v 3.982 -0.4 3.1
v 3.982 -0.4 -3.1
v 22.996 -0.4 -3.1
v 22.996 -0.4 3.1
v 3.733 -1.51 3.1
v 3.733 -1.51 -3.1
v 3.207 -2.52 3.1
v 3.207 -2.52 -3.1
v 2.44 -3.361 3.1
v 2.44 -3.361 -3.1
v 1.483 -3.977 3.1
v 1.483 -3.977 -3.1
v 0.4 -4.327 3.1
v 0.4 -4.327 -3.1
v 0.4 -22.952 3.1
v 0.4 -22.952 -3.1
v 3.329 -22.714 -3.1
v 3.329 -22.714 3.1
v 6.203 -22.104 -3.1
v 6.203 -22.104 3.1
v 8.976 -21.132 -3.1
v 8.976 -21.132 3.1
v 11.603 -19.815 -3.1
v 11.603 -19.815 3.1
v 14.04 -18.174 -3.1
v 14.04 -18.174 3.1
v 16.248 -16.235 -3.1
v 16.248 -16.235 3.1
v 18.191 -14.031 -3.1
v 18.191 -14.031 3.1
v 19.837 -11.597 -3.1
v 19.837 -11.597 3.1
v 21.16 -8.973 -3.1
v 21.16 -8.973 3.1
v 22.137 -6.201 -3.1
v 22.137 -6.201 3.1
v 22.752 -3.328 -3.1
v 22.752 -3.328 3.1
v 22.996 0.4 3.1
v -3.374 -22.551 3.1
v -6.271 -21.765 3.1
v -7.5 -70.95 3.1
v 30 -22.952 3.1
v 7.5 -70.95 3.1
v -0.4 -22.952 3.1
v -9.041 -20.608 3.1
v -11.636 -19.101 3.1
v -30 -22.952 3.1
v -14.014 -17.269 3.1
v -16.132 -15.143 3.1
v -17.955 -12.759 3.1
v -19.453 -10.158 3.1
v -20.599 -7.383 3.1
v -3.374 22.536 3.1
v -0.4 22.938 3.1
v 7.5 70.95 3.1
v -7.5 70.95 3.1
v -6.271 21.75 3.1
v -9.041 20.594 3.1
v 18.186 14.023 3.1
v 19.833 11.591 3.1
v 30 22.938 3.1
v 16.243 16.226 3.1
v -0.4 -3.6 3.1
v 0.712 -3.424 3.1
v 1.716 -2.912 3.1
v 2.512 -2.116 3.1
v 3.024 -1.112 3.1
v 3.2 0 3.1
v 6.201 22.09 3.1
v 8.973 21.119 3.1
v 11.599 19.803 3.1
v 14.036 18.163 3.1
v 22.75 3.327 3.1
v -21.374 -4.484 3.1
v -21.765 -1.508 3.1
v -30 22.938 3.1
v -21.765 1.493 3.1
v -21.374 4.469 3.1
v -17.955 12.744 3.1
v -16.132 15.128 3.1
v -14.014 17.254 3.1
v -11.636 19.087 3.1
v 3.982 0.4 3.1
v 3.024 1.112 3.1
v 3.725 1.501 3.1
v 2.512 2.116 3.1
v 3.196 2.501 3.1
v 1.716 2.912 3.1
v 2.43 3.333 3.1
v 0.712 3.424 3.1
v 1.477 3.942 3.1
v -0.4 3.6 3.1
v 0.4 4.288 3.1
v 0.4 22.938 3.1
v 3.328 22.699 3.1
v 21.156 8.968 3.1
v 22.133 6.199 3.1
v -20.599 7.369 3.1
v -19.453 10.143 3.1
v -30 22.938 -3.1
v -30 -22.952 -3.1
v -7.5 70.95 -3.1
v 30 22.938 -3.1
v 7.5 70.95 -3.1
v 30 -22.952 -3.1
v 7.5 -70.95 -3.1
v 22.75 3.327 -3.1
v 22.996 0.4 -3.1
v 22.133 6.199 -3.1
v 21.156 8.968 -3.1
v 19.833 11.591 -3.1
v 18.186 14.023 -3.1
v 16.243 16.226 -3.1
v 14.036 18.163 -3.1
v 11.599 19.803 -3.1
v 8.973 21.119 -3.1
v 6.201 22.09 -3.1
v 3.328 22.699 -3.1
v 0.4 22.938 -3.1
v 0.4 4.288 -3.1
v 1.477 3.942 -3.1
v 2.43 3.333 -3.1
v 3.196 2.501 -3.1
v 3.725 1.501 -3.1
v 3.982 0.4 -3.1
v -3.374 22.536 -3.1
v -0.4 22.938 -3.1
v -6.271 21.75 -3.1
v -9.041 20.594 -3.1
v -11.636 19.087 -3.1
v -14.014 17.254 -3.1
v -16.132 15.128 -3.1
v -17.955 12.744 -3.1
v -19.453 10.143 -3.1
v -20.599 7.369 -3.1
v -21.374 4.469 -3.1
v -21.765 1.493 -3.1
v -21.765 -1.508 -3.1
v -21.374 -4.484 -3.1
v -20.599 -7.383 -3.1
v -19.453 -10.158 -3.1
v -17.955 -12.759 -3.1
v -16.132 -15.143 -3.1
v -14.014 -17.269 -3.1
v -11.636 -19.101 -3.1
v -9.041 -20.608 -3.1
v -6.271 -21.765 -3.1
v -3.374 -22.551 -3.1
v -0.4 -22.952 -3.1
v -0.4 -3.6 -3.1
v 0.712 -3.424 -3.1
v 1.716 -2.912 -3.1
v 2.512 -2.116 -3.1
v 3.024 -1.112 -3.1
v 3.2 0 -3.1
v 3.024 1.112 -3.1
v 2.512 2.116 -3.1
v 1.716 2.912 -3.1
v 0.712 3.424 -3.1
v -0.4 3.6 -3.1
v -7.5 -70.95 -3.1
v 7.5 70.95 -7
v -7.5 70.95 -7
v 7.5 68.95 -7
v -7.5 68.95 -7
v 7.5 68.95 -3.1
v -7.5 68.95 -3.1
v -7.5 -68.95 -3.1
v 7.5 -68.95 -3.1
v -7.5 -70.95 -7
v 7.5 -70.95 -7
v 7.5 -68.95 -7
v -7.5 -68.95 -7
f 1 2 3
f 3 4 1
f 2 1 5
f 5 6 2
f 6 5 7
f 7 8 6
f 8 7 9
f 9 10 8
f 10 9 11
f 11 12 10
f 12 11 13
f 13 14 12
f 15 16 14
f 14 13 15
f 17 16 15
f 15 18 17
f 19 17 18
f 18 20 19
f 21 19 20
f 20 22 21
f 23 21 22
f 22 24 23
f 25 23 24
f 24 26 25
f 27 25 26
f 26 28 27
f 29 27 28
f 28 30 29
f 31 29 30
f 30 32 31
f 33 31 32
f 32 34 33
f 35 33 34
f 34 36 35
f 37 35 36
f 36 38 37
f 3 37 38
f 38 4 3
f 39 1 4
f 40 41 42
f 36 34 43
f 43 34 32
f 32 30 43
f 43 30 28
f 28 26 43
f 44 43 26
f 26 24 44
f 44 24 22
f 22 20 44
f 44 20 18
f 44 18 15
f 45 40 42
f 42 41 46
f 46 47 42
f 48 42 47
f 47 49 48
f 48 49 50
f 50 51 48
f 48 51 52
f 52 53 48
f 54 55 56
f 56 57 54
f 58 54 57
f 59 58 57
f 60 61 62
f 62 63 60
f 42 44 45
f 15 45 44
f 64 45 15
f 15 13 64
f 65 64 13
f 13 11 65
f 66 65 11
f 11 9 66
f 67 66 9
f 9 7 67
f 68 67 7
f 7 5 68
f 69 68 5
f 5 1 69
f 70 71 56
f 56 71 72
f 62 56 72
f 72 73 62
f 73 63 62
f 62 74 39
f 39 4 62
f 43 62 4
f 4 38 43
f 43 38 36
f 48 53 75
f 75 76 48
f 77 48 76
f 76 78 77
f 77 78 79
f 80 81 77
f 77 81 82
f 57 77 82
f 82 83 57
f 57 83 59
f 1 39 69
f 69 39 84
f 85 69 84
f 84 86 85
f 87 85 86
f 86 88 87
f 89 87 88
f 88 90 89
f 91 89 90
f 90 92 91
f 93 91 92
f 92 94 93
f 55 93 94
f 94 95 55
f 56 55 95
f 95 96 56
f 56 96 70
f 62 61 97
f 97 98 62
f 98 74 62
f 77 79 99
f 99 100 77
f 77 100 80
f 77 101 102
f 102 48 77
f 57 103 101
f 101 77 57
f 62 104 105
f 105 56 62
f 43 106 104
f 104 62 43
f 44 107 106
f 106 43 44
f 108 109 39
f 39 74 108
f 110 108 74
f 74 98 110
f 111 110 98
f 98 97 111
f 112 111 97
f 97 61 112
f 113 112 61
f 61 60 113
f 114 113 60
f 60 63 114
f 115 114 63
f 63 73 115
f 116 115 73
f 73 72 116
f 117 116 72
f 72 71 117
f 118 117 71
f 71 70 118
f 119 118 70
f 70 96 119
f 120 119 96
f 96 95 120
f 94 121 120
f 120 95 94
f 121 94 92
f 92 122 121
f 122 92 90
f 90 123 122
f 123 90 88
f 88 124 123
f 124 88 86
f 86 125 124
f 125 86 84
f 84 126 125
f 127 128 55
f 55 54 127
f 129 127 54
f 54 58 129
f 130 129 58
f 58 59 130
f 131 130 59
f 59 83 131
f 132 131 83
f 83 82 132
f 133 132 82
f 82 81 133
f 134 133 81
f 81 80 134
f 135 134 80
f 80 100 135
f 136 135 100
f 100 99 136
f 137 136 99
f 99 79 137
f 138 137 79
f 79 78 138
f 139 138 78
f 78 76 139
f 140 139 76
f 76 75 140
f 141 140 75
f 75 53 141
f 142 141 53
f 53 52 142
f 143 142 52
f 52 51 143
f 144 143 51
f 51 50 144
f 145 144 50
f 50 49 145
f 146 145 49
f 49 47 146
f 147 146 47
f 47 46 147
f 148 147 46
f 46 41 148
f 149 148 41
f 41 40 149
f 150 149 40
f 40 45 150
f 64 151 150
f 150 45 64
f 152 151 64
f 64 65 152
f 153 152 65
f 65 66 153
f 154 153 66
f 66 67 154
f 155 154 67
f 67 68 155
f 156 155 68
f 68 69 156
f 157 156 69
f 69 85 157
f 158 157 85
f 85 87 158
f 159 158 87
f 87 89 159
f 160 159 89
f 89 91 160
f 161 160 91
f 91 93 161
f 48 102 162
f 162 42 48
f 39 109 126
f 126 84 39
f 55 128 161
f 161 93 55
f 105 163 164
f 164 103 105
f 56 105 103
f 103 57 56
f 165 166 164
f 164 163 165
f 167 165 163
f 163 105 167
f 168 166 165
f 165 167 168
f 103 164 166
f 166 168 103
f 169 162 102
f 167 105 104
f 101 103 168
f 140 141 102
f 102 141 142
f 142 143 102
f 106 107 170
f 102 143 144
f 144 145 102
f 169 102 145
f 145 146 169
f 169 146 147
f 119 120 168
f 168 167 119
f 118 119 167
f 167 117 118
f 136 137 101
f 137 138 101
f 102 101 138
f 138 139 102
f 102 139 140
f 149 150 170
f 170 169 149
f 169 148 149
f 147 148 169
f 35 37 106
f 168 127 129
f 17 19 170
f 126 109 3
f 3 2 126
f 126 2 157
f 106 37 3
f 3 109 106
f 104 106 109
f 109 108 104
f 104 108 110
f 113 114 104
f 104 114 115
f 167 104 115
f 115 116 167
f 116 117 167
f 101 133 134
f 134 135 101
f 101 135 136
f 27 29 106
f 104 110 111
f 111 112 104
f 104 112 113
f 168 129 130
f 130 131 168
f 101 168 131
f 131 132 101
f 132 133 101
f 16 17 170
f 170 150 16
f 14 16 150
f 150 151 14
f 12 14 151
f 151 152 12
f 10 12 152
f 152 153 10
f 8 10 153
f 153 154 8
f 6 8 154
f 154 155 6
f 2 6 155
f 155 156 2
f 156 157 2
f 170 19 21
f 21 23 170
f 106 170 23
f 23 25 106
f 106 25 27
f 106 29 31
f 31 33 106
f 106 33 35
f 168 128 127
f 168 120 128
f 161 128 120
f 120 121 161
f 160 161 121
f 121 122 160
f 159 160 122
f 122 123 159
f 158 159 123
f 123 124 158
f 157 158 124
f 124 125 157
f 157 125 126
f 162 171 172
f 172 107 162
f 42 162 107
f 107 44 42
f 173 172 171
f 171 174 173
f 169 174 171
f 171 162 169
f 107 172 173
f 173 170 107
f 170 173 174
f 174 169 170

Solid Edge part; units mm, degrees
sketch "Sketch1" plane through (0, 0, 0) normal (0, 0, -1) x (-1, 0, 0)
  line L0 (30, -22.9524) -> (30, 22.9378)
  line L1 (30, 22.9378) -> (7.5, 70.95)
  line L2 (7.5, 70.95) -> (-7.5, 70.95)
  line L3 (-7.5, 70.95) -> (-30, 22.9378)
  line L4 (-30, 22.9378) -> (-30, -22.9524)
  line L5 (-30, -22.9524) -> (-7.5, -70.95)
  line L6 (-7.5, -70.95) -> (7.5, -70.95)
  line L7 (7.5, -70.95) -> (30, -22.9524)
  line L8 (-0.4, 4.2876) -> (-0.4, 22.9378)
  arc A0 (-3.9818, 0.4) -> (-0.4, 4.2876) centre (0.3962, -0.0398) cw
  line L9 (-22.9964, 0.4) -> (-3.9818, 0.4)
  arc A1 (-0.4, 22.9378) -> (-22.9964, 0.4) centre (-0.0011, -0.0586) ccw
  line L10 (-22.9964, -0.4) -> (-3.9818, -0.4)
  arc A2 (-0.4, -22.9524) -> (-22.9964, -0.4) centre (-0.0008, 0.044) cw
  line L11 (-0.4, -4.3267) -> (-0.4, -22.9524)
  arc A3 (-3.9818, -0.4) -> (-0.4, -4.3267) centre (0.4, 0) ccw
  arc A4 (0.4, 22.9378) -> (0.4, -22.9524) centre (-1.1861, -0.0073) cw
  line L12 (0.4, 3.6) -> (0.4, 22.9378)
  arc A5 (0.4, -3.6) -> (0.4, 3.6) centre (0.4, 0) cw
  line L13 (0.4, -22.9524) -> (0.4, -3.6)
extrude "ExtrudedProtrusion_3" add sketch "Sketch1" along normal mid plane 6.2
sketch "Sketch2" plane through (0, 0, -3.1) normal (0, 0, -1) x (0, 1, 0)
  line L0 (-68.95, -7.5) -> (-70.95, -7.5)
  line L1 (-70.95, -7.5) -> (-70.95, 7.5)
  line L2 (-70.95, 7.5) -> (-68.95, 7.5)
  line L3 (-68.95, 7.5) -> (-68.95, -7.5)
  line L4 (68.95, 7.5) -> (68.95, -7.5)
  line L5 (68.95, -7.5) -> (70.95, -7.5)
  line L6 (70.95, -7.5) -> (70.95, 7.5)
  line L7 (70.95, 7.5) -> (68.95, 7.5)
  dimension "D1" = 15
  dimension "D2" = 2
extrude "ExtrudedProtrusion_4" add sketch "Sketch2" along normal blind 3.9
properties material "PLA Filament"
